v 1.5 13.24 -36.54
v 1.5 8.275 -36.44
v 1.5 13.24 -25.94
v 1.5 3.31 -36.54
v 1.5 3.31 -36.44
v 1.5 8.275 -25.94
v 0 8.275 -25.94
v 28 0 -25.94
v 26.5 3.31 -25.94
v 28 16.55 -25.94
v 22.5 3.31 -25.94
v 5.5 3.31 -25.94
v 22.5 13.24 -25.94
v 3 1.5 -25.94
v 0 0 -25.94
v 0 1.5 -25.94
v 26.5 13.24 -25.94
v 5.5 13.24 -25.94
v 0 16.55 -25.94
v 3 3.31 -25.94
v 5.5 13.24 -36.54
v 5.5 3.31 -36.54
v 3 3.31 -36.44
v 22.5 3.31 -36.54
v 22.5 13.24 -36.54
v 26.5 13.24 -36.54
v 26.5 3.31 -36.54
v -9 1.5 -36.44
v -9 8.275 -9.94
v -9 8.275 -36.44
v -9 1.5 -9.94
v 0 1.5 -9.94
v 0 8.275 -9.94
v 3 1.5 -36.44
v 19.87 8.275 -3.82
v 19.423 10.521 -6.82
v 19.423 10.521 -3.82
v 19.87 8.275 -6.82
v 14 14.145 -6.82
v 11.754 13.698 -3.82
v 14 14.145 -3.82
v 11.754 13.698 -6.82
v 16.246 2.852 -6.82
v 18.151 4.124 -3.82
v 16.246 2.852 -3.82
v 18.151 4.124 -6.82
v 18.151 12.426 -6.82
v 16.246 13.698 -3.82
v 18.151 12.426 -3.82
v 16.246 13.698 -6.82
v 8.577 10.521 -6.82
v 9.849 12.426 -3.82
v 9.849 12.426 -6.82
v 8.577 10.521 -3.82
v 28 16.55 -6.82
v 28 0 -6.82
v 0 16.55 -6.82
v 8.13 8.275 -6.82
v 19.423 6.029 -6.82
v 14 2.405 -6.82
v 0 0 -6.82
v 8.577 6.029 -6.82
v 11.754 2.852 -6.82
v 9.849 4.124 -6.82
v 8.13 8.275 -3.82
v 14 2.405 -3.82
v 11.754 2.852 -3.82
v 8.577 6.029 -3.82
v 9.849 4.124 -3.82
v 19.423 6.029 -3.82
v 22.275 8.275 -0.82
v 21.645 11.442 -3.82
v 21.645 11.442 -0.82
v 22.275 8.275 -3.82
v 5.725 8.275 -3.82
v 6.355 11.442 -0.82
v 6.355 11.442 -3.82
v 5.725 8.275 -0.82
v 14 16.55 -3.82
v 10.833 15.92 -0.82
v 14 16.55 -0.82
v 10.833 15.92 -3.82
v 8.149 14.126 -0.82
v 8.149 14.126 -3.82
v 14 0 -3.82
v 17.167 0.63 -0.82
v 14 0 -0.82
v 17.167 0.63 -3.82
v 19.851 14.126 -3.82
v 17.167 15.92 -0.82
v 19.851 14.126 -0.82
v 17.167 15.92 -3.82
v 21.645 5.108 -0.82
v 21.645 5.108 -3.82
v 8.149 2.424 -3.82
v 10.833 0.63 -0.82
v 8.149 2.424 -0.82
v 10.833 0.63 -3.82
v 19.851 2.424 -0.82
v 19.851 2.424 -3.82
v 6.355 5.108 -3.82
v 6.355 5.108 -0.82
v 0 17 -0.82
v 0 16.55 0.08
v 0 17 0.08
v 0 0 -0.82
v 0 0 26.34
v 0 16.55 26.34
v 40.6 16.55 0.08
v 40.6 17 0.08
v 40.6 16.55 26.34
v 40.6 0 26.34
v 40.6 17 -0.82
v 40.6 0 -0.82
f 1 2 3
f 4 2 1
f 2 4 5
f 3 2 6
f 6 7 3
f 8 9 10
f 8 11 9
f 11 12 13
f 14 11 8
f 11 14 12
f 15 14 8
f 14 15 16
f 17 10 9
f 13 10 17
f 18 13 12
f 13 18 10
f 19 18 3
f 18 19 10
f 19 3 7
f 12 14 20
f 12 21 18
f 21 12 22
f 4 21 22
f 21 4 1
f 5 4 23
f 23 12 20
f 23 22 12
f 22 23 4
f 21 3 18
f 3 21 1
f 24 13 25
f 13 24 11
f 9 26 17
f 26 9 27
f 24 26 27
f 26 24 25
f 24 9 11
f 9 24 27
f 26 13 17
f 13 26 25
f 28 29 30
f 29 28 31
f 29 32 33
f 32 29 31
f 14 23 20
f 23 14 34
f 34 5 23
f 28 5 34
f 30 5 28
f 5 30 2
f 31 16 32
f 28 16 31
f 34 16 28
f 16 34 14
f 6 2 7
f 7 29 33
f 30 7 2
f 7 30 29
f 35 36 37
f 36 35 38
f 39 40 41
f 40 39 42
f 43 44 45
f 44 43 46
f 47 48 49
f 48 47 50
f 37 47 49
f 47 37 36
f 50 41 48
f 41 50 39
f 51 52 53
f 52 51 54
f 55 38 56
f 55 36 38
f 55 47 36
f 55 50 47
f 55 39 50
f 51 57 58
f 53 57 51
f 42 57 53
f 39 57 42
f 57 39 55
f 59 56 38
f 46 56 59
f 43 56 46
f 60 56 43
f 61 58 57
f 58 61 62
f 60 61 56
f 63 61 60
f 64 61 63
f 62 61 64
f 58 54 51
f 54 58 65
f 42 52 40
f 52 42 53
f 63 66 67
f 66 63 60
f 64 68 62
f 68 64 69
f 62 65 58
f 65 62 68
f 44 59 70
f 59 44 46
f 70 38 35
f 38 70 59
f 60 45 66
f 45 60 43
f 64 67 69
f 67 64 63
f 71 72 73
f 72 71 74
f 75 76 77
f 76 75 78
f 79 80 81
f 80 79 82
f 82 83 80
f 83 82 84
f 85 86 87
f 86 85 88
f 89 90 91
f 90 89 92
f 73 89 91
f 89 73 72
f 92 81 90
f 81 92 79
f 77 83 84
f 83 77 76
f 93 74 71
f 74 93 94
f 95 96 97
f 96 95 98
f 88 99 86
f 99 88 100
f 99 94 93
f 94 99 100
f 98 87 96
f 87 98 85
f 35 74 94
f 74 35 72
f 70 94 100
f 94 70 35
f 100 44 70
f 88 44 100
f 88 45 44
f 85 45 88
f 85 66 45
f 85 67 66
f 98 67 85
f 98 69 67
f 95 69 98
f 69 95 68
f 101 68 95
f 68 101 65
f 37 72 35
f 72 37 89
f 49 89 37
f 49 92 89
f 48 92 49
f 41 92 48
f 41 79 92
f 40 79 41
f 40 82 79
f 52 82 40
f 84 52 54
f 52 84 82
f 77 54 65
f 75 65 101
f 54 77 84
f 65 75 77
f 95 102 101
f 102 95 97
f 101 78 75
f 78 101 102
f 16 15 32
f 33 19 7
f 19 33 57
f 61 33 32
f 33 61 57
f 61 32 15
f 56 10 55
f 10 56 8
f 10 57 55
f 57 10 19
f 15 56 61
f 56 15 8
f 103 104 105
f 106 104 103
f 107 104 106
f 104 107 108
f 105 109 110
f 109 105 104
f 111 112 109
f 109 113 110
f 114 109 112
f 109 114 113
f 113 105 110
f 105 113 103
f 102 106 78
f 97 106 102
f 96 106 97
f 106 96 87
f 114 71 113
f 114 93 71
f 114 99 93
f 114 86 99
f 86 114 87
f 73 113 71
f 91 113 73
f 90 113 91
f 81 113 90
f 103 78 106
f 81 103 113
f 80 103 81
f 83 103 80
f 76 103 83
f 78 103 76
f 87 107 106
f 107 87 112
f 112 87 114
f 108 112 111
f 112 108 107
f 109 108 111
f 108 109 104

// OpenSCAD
// A toggle switch ordered from https://www.sparkfun.com/products/11310

$fn = 16;

length = 28;
width = 16.55;
height = 19.12;

toggle_switch_with_cover();

module base() {
    cube([length, width, height]);
}

module prongs() {
    translate([1.5, width/5, -10.6]) cube([4, 3*width/5, 10.6]);
    translate([length-1.5-4, width/5, -10.6]) cube([4, 3*width/5, 10.6]);
    translate([-9, 1.5, -10.5]) cube([12, width/2 - 1.5, 26.5]);
}

module shaft() {
    translate([length/2, width/2, height]) cylinder(h = 13, r = 11.74 / 2);
    translate([length/2, width/2, height + 3]) cylinder(h = 6, r = 16.55 / 2);
}

module plate() {
    translate([0, 0, height + 6]) cube([40.6, 17, .9]);
}

module toggle() {
    translate([length/2, width/2, height + 9]) rotate([0, -15, 0]) {
        cylinder(h = 15, r = 7.22/2);    
    }
}

module cover() {
    color("red") translate([0, 0, height + 6.82])
        cube([40.6, width, 43.9 - 17.56]);
}

module toggle_switch_with_cover() {
    translate([0, 0, -height - .82 - 6]) 
        union() {
            base();
            color("silver") prongs();
            color("black") shaft();
            color("silver") plate();
            color("red") toggle();
            color("red") cover();
        }
}
